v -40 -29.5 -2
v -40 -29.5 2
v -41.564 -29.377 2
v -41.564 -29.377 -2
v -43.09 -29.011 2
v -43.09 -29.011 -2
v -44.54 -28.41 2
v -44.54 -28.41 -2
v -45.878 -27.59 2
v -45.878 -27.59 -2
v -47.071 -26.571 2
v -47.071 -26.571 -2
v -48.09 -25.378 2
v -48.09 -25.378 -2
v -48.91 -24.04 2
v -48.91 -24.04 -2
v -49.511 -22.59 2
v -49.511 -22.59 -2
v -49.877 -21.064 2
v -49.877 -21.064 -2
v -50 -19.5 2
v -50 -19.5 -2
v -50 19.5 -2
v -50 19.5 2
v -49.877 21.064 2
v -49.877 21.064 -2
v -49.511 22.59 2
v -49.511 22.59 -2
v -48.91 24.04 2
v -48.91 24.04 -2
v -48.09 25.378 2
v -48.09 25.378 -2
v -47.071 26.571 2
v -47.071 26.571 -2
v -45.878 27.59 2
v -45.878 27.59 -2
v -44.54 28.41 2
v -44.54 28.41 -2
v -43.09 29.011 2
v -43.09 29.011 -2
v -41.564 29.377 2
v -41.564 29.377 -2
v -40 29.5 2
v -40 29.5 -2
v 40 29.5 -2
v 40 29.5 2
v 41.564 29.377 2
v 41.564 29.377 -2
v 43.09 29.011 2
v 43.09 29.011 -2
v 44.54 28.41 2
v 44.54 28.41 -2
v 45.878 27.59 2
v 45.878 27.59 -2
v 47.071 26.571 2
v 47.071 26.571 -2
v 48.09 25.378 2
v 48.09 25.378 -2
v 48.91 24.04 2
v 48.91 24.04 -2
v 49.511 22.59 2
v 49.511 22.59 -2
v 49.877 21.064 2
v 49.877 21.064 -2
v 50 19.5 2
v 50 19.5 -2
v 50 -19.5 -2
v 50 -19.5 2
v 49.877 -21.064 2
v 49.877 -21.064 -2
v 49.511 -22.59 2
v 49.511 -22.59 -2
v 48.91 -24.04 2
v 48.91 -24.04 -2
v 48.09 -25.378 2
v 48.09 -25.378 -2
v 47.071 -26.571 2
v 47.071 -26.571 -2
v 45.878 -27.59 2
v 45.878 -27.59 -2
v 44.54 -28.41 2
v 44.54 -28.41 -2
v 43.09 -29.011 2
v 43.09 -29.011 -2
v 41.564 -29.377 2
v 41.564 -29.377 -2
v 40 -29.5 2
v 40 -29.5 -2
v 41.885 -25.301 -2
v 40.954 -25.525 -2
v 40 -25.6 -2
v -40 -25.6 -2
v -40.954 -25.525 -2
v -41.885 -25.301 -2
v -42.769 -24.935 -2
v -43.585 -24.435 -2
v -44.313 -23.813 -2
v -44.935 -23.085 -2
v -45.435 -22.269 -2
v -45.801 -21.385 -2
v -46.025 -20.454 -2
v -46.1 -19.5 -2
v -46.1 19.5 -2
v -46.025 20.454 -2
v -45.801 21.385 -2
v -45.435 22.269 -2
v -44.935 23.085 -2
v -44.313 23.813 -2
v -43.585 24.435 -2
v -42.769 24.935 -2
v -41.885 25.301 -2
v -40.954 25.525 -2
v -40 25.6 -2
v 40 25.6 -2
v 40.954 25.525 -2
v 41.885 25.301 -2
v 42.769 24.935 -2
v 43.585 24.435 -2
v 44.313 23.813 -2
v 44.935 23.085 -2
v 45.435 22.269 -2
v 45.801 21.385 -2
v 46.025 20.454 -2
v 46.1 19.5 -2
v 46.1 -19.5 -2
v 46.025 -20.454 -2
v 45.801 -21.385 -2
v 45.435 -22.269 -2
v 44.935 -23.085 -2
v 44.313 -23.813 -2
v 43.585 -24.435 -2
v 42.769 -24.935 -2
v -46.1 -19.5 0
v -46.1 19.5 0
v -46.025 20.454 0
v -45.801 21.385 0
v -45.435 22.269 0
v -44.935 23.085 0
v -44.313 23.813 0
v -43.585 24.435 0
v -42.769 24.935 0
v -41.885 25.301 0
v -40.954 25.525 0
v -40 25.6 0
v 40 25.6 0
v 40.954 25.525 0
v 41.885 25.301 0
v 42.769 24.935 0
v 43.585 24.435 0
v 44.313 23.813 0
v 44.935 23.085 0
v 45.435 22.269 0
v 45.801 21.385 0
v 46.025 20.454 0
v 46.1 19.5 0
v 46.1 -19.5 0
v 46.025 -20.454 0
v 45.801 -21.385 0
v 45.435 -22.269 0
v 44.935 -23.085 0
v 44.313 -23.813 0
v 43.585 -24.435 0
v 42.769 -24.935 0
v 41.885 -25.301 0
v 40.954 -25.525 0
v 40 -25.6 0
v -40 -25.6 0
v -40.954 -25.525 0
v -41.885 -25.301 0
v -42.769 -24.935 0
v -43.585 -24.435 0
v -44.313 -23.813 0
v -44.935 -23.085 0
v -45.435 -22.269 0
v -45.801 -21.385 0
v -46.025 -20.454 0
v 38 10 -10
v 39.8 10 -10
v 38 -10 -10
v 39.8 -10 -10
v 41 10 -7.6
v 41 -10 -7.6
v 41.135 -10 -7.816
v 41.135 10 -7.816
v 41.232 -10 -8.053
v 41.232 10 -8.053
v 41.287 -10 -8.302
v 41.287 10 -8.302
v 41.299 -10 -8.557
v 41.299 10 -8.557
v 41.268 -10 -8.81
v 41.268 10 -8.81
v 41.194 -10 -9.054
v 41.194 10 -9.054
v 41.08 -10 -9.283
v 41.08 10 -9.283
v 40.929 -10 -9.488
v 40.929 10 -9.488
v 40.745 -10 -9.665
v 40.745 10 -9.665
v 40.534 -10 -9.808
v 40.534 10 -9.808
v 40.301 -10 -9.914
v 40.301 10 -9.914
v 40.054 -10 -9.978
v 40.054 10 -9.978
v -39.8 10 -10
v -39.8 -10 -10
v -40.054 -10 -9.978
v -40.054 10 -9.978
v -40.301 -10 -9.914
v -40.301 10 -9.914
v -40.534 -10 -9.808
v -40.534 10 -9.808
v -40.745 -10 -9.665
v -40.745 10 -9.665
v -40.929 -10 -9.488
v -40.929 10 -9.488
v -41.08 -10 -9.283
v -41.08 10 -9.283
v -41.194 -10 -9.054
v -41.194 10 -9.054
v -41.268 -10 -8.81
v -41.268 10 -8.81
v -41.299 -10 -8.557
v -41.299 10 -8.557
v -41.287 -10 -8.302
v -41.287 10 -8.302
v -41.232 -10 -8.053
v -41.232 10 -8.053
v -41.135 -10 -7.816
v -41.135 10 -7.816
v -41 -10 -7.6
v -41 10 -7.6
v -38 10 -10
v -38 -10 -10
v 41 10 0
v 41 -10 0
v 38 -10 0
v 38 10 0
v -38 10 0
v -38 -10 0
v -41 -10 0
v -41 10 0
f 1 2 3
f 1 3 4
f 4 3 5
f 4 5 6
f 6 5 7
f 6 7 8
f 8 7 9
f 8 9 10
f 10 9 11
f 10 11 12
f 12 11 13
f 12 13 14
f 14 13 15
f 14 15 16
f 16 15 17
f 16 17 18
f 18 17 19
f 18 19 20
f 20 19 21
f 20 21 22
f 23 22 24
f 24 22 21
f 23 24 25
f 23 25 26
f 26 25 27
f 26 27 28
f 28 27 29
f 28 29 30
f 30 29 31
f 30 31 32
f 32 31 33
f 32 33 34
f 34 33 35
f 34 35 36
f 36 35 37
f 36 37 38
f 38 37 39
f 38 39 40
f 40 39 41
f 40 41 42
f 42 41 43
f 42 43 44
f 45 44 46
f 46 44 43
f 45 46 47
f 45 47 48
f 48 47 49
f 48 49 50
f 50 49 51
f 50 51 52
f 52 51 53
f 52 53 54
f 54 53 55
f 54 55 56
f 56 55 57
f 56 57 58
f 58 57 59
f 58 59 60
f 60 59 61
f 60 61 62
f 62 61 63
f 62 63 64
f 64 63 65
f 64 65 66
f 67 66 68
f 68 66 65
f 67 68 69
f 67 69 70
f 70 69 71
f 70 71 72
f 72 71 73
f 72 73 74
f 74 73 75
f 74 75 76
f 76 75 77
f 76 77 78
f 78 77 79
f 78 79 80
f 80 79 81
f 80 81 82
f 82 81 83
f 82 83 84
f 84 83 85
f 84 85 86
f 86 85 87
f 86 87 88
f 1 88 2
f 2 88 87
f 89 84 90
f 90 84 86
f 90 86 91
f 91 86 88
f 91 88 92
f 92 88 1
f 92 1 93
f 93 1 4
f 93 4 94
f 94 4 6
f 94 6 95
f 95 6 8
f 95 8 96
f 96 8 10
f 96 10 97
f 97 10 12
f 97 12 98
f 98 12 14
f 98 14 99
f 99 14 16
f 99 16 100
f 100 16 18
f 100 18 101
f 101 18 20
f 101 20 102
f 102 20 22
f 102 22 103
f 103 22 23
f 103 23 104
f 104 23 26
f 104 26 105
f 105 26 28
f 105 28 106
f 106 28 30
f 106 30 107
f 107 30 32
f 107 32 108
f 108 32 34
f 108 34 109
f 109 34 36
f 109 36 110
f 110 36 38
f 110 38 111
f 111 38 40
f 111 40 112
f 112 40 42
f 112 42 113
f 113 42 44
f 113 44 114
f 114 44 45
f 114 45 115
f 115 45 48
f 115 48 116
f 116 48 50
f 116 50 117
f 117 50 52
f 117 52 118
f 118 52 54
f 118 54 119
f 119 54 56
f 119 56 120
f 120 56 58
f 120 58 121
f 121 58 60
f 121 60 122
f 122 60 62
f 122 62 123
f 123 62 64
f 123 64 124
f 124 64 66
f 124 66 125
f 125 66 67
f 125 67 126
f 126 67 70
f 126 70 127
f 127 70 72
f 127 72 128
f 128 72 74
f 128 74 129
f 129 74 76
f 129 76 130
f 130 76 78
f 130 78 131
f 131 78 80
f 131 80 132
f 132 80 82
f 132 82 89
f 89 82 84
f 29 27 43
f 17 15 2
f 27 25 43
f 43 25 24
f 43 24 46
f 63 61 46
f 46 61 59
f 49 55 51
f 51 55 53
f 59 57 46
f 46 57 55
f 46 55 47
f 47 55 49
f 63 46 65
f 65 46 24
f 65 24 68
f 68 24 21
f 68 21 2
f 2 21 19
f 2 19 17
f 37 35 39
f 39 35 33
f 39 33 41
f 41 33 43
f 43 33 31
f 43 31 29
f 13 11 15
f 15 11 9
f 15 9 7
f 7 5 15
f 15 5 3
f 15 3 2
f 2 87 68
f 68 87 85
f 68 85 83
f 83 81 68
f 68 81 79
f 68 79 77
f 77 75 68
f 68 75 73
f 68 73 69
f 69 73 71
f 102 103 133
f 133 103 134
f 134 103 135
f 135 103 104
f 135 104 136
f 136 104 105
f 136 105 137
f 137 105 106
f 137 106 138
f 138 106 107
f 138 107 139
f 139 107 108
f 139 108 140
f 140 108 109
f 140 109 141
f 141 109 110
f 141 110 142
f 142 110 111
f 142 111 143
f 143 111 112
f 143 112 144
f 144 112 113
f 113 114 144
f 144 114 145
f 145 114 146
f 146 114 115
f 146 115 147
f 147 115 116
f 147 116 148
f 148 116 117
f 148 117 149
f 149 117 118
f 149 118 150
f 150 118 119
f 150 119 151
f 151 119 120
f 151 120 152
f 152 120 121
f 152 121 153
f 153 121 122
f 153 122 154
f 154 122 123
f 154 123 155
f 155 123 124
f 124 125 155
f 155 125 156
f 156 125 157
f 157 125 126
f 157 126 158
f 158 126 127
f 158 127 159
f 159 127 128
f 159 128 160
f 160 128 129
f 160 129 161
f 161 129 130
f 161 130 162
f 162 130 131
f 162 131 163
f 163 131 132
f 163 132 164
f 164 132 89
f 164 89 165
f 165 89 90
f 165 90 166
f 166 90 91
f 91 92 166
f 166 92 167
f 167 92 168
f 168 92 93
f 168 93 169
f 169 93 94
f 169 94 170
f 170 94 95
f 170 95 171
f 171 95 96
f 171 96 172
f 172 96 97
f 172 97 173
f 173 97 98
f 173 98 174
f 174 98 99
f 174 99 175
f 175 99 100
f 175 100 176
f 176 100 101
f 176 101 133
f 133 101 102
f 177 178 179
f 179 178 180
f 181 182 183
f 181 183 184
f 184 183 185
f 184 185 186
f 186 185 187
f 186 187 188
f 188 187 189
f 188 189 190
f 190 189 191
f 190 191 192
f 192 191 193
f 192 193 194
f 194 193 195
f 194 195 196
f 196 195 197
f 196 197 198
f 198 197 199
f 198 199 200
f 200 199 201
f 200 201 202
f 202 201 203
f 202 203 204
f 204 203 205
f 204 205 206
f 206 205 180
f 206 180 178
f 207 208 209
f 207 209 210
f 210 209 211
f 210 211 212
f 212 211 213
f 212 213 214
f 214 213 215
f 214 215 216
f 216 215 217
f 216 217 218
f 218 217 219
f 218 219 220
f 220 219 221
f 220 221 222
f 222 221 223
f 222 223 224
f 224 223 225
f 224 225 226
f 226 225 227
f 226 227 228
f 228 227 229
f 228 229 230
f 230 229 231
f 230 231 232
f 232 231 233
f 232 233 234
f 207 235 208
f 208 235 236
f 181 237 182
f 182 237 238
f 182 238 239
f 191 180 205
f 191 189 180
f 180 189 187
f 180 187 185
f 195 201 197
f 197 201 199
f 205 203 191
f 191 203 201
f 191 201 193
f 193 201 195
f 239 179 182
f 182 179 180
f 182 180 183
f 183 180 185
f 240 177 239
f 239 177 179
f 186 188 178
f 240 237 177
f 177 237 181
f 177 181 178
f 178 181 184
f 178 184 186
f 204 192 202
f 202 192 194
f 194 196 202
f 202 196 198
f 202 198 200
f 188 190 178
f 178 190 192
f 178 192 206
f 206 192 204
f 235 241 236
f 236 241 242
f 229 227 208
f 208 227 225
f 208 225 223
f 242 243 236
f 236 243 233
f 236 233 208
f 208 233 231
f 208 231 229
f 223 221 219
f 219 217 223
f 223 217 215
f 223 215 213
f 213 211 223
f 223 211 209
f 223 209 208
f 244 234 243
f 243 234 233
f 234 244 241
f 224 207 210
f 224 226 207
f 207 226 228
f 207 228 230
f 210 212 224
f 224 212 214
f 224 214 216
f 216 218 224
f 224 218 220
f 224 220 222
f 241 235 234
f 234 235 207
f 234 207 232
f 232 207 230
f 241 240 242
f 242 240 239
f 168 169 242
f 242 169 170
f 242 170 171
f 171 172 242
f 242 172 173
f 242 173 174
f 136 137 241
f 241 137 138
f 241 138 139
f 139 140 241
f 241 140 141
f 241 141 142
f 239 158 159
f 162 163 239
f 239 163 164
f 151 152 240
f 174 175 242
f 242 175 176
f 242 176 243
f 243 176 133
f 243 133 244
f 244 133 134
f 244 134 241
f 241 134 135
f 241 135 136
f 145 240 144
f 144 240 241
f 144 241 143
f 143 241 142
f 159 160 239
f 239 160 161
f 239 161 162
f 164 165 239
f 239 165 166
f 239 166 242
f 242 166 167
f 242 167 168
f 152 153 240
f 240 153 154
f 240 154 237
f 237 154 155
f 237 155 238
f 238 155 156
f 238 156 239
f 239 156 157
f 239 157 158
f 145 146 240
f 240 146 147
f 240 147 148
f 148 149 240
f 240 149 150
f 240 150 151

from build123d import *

# Parameters (mm, degrees)
SKETCH1_W           = 92
SKETCH1_H           = 51
BOSS_EXTRUDE1_DEPTH = 2
FILLET1_R           = 6
BOSS_EXTRUDE2_DEPTH = 4
BOSS_EXTRUDE3_DEPTH = 10
CUT_EXTRUDE2_START  = -2
CUT_EXTRUDE2_DEPTH  = 2


with BuildPart() as part:
    # Sketch1 → Boss-Extrude1 (new body)
    with BuildSketch(Plane.XY):
        Rectangle(SKETCH1_W, SKETCH1_H)
    extrude(amount=BOSS_EXTRUDE1_DEPTH)

    # Fillet1
    fillet1_edges = [part.edges().sort_by_distance(p)[0] for p in [
        (46, -25.5, 1),
        (-46, -25.5, 1),
        (-46, 25.5, 1),
        (46, 25.5, 1),
    ]]
    fillet(fillet1_edges, radius=FILLET1_R)

    # Sketch2 → Boss-Extrude2 (add)
    with BuildSketch(Plane.XY.offset(2)):
        with BuildLine():
            Line((-40, -29.5), (40, -29.5))
            ThreePointArc((40, -29.5), (47.071067812, -26.571067812), (50, -19.5))
            Line((50, -19.5), (50, 19.5))
            ThreePointArc((50, 19.5), (47.071067812, 26.571067812), (40, 29.5))
            Line((40, 29.5), (-40, 29.5))
            ThreePointArc((-40, 29.5), (-47.071067812, 26.571067812), (-50, 19.5))
            Line((-50, 19.5), (-50, -19.5))
            ThreePointArc((-50, -19.5), (-47.071067812, -26.571067812), (-40, -29.5))
        make_face()
        with BuildLine():
            Line((-46, 19.5), (-46, -19.5))
            ThreePointArc((-46, -19.5), (-44.242640687, -23.742640687), (-40, -25.5))
            Line((-40, -25.5), (40, -25.5))
            ThreePointArc((40, -25.5), (44.242640687, -23.742640687), (46, -19.5))
            Line((46, -19.5), (46, 19.5))
            ThreePointArc((46, 19.5), (44.242640687, 23.742640687), (40, 25.5))
            Line((40, 25.5), (-40, 25.5))
            ThreePointArc((-40, 25.5), (-44.242640687, 23.742640687), (-46, 19.5))
        make_face(mode=Mode.SUBTRACT)
    extrude(amount=-BOSS_EXTRUDE2_DEPTH)

    # Sketch3 → Boss-Extrude3 (add, symmetric)
    with BuildSketch(Plane(origin=(0, 0, 0), x_dir=(1, 0, 0), z_dir=(0, 1, 0))):
        with BuildLine():
            Line((-41, 7.6), (-41, 0))
            Line((-41, 0), (-38, 0))
            Line((-38, 0), (-38, 10))
            Line((-38, 10), (-39.799999994, 10))
            ThreePointArc((-39.799999994, 10), (-41.141640785, 9.170820396), (-41, 7.6))
        make_face()
        with BuildLine():
            Line((38, 0), (41, 0))
            Line((41, 0), (41, 7.6))
            ThreePointArc((41, 7.6), (41.141640788, 9.17082039), (39.800000006, 10))
            Line((39.800000006, 10), (38, 10))
            Line((38, 10), (38, 0))
        make_face()
    extrude(amount=BOSS_EXTRUDE3_DEPTH, both=True)

    # Sketch4 → Cut-Extrude2 (cut)
    with BuildSketch(Plane(origin=(0, 0, -2), x_dir=(-1, 0, 0), z_dir=(0, 0, -1)).offset(CUT_EXTRUDE2_START)):
        with BuildLine():
            Line((46.1, -19.5), (46.1, 19.5))
            ThreePointArc((46.1, 19.5), (44.313351365, 23.813351365), (40, 25.6))
            Line((40, 25.6), (-40, 25.6))
            ThreePointArc((-40, 25.6), (-44.313351365, 23.813351365), (-46.1, 19.5))
            Line((-46.1, 19.5), (-46.1, -19.5))
            ThreePointArc((-46.1, -19.5), (-44.313351365, -23.813351365), (-40, -25.6))
            Line((-40, -25.6), (40, -25.6))
            ThreePointArc((40, -25.6), (44.313351365, -23.813351365), (46.1, -19.5))
        make_face()
        with BuildLine():
            Line((-40, 25.5), (40, 25.5))
            ThreePointArc((40, 25.5), (44.242640687, 23.742640687), (46, 19.5))
            Line((46, 19.5), (46, -19.5))
            ThreePointArc((46, -19.5), (44.242640687, -23.742640687), (40, -25.5))
            Line((40, -25.5), (-40, -25.5))
            ThreePointArc((-40, -25.5), (-44.242640687, -23.742640687), (-46, -19.5))
            Line((-46, -19.5), (-46, 19.5))
            ThreePointArc((-46, 19.5), (-44.242640687, 23.742640687), (-40, 25.5))
        make_face(mode=Mode.SUBTRACT)
    extrude(amount=CUT_EXTRUDE2_DEPTH, mode=Mode.SUBTRACT)


solid = part.part
